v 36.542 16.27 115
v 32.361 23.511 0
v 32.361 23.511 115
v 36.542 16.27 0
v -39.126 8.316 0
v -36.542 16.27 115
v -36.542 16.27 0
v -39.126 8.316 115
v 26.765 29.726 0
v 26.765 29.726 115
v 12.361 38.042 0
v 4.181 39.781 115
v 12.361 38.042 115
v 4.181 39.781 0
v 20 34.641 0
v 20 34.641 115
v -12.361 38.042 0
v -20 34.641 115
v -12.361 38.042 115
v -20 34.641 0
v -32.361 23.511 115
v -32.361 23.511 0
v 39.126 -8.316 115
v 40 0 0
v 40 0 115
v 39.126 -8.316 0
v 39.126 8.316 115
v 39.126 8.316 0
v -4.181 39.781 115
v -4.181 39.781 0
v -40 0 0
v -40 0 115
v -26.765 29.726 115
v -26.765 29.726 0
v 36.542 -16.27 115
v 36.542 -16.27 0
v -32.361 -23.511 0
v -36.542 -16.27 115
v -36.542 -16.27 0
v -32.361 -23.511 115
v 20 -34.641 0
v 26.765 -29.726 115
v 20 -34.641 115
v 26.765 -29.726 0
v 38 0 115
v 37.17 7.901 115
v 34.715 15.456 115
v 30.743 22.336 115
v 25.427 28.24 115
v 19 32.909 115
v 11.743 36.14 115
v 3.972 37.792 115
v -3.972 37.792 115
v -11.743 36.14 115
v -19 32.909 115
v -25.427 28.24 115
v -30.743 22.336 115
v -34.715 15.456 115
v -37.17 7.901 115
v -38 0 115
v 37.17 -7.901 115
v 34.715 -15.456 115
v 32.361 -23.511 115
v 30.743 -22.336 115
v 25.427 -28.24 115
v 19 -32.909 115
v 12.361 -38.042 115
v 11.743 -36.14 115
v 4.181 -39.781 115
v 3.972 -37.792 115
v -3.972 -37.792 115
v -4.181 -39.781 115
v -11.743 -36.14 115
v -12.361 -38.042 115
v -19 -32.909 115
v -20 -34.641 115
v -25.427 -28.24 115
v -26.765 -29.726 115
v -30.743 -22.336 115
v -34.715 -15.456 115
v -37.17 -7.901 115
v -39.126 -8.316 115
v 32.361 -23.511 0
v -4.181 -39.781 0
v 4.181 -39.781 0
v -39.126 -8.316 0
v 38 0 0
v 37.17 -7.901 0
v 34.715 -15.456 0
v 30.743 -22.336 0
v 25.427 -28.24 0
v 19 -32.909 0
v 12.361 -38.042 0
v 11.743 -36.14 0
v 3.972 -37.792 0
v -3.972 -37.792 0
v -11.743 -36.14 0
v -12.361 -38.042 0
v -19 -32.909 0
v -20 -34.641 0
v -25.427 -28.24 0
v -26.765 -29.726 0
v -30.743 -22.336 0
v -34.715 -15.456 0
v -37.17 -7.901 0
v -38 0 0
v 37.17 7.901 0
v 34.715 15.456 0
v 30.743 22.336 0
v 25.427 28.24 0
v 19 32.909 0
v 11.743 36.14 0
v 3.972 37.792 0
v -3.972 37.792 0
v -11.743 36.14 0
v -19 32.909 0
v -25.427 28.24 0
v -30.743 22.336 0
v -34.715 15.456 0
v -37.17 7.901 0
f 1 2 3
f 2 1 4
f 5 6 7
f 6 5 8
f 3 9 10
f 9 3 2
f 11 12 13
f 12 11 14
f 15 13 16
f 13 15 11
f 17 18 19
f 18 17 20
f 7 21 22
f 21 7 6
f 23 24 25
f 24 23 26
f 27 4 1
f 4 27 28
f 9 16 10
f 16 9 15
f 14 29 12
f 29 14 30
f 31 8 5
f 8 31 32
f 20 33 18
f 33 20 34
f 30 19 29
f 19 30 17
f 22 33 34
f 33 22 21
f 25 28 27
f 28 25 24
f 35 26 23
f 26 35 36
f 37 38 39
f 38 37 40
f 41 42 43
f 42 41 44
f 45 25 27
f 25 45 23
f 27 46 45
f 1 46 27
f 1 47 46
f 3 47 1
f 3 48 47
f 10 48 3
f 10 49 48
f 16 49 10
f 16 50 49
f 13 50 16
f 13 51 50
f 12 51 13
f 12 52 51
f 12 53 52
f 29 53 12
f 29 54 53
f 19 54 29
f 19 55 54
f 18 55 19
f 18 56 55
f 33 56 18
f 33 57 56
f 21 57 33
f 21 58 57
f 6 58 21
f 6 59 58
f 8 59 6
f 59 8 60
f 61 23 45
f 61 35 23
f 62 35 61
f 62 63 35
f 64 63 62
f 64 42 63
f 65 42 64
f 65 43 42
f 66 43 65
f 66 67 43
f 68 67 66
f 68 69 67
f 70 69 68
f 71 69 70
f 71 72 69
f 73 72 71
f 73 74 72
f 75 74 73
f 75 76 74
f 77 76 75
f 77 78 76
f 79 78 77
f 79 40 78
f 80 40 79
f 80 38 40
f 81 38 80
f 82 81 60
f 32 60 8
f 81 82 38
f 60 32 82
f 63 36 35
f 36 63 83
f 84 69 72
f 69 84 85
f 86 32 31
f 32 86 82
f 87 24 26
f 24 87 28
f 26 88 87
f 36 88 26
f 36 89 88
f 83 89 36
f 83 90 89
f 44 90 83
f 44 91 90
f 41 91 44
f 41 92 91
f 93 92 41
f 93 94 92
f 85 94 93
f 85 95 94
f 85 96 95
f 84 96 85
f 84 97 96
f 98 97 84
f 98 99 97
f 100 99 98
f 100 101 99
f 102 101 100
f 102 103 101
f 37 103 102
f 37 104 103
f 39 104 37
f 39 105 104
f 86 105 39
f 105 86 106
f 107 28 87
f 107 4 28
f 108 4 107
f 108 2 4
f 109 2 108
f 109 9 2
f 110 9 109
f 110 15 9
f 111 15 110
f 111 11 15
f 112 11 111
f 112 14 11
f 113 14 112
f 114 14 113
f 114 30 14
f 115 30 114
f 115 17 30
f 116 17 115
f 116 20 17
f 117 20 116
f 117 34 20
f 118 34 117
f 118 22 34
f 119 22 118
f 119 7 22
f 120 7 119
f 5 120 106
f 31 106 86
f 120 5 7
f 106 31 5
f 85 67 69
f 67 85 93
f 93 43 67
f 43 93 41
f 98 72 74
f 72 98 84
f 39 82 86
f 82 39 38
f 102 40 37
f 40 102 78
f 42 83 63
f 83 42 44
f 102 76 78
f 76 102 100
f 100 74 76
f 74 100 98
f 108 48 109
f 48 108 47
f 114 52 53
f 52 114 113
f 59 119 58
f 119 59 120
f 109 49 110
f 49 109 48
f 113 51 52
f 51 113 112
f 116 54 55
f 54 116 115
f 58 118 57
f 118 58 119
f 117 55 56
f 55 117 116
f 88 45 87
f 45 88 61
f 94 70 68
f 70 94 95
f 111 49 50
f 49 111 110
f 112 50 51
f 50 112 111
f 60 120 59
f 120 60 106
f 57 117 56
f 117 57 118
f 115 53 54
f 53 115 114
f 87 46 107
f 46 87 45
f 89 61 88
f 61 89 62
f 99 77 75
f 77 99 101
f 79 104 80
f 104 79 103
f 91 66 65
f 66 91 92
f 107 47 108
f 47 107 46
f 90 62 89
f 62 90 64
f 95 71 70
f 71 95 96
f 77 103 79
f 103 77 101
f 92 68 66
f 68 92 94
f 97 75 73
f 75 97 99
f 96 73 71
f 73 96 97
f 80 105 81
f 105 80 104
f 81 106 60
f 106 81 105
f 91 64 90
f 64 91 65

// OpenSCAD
// 
// toilet paper role core size cylinder

r = 40;
h = 115;

difference() {
    cylinder(h ,r,r);
    translate(0,0,-2) cylinder(h+4 ,r-2,r-2);
}
